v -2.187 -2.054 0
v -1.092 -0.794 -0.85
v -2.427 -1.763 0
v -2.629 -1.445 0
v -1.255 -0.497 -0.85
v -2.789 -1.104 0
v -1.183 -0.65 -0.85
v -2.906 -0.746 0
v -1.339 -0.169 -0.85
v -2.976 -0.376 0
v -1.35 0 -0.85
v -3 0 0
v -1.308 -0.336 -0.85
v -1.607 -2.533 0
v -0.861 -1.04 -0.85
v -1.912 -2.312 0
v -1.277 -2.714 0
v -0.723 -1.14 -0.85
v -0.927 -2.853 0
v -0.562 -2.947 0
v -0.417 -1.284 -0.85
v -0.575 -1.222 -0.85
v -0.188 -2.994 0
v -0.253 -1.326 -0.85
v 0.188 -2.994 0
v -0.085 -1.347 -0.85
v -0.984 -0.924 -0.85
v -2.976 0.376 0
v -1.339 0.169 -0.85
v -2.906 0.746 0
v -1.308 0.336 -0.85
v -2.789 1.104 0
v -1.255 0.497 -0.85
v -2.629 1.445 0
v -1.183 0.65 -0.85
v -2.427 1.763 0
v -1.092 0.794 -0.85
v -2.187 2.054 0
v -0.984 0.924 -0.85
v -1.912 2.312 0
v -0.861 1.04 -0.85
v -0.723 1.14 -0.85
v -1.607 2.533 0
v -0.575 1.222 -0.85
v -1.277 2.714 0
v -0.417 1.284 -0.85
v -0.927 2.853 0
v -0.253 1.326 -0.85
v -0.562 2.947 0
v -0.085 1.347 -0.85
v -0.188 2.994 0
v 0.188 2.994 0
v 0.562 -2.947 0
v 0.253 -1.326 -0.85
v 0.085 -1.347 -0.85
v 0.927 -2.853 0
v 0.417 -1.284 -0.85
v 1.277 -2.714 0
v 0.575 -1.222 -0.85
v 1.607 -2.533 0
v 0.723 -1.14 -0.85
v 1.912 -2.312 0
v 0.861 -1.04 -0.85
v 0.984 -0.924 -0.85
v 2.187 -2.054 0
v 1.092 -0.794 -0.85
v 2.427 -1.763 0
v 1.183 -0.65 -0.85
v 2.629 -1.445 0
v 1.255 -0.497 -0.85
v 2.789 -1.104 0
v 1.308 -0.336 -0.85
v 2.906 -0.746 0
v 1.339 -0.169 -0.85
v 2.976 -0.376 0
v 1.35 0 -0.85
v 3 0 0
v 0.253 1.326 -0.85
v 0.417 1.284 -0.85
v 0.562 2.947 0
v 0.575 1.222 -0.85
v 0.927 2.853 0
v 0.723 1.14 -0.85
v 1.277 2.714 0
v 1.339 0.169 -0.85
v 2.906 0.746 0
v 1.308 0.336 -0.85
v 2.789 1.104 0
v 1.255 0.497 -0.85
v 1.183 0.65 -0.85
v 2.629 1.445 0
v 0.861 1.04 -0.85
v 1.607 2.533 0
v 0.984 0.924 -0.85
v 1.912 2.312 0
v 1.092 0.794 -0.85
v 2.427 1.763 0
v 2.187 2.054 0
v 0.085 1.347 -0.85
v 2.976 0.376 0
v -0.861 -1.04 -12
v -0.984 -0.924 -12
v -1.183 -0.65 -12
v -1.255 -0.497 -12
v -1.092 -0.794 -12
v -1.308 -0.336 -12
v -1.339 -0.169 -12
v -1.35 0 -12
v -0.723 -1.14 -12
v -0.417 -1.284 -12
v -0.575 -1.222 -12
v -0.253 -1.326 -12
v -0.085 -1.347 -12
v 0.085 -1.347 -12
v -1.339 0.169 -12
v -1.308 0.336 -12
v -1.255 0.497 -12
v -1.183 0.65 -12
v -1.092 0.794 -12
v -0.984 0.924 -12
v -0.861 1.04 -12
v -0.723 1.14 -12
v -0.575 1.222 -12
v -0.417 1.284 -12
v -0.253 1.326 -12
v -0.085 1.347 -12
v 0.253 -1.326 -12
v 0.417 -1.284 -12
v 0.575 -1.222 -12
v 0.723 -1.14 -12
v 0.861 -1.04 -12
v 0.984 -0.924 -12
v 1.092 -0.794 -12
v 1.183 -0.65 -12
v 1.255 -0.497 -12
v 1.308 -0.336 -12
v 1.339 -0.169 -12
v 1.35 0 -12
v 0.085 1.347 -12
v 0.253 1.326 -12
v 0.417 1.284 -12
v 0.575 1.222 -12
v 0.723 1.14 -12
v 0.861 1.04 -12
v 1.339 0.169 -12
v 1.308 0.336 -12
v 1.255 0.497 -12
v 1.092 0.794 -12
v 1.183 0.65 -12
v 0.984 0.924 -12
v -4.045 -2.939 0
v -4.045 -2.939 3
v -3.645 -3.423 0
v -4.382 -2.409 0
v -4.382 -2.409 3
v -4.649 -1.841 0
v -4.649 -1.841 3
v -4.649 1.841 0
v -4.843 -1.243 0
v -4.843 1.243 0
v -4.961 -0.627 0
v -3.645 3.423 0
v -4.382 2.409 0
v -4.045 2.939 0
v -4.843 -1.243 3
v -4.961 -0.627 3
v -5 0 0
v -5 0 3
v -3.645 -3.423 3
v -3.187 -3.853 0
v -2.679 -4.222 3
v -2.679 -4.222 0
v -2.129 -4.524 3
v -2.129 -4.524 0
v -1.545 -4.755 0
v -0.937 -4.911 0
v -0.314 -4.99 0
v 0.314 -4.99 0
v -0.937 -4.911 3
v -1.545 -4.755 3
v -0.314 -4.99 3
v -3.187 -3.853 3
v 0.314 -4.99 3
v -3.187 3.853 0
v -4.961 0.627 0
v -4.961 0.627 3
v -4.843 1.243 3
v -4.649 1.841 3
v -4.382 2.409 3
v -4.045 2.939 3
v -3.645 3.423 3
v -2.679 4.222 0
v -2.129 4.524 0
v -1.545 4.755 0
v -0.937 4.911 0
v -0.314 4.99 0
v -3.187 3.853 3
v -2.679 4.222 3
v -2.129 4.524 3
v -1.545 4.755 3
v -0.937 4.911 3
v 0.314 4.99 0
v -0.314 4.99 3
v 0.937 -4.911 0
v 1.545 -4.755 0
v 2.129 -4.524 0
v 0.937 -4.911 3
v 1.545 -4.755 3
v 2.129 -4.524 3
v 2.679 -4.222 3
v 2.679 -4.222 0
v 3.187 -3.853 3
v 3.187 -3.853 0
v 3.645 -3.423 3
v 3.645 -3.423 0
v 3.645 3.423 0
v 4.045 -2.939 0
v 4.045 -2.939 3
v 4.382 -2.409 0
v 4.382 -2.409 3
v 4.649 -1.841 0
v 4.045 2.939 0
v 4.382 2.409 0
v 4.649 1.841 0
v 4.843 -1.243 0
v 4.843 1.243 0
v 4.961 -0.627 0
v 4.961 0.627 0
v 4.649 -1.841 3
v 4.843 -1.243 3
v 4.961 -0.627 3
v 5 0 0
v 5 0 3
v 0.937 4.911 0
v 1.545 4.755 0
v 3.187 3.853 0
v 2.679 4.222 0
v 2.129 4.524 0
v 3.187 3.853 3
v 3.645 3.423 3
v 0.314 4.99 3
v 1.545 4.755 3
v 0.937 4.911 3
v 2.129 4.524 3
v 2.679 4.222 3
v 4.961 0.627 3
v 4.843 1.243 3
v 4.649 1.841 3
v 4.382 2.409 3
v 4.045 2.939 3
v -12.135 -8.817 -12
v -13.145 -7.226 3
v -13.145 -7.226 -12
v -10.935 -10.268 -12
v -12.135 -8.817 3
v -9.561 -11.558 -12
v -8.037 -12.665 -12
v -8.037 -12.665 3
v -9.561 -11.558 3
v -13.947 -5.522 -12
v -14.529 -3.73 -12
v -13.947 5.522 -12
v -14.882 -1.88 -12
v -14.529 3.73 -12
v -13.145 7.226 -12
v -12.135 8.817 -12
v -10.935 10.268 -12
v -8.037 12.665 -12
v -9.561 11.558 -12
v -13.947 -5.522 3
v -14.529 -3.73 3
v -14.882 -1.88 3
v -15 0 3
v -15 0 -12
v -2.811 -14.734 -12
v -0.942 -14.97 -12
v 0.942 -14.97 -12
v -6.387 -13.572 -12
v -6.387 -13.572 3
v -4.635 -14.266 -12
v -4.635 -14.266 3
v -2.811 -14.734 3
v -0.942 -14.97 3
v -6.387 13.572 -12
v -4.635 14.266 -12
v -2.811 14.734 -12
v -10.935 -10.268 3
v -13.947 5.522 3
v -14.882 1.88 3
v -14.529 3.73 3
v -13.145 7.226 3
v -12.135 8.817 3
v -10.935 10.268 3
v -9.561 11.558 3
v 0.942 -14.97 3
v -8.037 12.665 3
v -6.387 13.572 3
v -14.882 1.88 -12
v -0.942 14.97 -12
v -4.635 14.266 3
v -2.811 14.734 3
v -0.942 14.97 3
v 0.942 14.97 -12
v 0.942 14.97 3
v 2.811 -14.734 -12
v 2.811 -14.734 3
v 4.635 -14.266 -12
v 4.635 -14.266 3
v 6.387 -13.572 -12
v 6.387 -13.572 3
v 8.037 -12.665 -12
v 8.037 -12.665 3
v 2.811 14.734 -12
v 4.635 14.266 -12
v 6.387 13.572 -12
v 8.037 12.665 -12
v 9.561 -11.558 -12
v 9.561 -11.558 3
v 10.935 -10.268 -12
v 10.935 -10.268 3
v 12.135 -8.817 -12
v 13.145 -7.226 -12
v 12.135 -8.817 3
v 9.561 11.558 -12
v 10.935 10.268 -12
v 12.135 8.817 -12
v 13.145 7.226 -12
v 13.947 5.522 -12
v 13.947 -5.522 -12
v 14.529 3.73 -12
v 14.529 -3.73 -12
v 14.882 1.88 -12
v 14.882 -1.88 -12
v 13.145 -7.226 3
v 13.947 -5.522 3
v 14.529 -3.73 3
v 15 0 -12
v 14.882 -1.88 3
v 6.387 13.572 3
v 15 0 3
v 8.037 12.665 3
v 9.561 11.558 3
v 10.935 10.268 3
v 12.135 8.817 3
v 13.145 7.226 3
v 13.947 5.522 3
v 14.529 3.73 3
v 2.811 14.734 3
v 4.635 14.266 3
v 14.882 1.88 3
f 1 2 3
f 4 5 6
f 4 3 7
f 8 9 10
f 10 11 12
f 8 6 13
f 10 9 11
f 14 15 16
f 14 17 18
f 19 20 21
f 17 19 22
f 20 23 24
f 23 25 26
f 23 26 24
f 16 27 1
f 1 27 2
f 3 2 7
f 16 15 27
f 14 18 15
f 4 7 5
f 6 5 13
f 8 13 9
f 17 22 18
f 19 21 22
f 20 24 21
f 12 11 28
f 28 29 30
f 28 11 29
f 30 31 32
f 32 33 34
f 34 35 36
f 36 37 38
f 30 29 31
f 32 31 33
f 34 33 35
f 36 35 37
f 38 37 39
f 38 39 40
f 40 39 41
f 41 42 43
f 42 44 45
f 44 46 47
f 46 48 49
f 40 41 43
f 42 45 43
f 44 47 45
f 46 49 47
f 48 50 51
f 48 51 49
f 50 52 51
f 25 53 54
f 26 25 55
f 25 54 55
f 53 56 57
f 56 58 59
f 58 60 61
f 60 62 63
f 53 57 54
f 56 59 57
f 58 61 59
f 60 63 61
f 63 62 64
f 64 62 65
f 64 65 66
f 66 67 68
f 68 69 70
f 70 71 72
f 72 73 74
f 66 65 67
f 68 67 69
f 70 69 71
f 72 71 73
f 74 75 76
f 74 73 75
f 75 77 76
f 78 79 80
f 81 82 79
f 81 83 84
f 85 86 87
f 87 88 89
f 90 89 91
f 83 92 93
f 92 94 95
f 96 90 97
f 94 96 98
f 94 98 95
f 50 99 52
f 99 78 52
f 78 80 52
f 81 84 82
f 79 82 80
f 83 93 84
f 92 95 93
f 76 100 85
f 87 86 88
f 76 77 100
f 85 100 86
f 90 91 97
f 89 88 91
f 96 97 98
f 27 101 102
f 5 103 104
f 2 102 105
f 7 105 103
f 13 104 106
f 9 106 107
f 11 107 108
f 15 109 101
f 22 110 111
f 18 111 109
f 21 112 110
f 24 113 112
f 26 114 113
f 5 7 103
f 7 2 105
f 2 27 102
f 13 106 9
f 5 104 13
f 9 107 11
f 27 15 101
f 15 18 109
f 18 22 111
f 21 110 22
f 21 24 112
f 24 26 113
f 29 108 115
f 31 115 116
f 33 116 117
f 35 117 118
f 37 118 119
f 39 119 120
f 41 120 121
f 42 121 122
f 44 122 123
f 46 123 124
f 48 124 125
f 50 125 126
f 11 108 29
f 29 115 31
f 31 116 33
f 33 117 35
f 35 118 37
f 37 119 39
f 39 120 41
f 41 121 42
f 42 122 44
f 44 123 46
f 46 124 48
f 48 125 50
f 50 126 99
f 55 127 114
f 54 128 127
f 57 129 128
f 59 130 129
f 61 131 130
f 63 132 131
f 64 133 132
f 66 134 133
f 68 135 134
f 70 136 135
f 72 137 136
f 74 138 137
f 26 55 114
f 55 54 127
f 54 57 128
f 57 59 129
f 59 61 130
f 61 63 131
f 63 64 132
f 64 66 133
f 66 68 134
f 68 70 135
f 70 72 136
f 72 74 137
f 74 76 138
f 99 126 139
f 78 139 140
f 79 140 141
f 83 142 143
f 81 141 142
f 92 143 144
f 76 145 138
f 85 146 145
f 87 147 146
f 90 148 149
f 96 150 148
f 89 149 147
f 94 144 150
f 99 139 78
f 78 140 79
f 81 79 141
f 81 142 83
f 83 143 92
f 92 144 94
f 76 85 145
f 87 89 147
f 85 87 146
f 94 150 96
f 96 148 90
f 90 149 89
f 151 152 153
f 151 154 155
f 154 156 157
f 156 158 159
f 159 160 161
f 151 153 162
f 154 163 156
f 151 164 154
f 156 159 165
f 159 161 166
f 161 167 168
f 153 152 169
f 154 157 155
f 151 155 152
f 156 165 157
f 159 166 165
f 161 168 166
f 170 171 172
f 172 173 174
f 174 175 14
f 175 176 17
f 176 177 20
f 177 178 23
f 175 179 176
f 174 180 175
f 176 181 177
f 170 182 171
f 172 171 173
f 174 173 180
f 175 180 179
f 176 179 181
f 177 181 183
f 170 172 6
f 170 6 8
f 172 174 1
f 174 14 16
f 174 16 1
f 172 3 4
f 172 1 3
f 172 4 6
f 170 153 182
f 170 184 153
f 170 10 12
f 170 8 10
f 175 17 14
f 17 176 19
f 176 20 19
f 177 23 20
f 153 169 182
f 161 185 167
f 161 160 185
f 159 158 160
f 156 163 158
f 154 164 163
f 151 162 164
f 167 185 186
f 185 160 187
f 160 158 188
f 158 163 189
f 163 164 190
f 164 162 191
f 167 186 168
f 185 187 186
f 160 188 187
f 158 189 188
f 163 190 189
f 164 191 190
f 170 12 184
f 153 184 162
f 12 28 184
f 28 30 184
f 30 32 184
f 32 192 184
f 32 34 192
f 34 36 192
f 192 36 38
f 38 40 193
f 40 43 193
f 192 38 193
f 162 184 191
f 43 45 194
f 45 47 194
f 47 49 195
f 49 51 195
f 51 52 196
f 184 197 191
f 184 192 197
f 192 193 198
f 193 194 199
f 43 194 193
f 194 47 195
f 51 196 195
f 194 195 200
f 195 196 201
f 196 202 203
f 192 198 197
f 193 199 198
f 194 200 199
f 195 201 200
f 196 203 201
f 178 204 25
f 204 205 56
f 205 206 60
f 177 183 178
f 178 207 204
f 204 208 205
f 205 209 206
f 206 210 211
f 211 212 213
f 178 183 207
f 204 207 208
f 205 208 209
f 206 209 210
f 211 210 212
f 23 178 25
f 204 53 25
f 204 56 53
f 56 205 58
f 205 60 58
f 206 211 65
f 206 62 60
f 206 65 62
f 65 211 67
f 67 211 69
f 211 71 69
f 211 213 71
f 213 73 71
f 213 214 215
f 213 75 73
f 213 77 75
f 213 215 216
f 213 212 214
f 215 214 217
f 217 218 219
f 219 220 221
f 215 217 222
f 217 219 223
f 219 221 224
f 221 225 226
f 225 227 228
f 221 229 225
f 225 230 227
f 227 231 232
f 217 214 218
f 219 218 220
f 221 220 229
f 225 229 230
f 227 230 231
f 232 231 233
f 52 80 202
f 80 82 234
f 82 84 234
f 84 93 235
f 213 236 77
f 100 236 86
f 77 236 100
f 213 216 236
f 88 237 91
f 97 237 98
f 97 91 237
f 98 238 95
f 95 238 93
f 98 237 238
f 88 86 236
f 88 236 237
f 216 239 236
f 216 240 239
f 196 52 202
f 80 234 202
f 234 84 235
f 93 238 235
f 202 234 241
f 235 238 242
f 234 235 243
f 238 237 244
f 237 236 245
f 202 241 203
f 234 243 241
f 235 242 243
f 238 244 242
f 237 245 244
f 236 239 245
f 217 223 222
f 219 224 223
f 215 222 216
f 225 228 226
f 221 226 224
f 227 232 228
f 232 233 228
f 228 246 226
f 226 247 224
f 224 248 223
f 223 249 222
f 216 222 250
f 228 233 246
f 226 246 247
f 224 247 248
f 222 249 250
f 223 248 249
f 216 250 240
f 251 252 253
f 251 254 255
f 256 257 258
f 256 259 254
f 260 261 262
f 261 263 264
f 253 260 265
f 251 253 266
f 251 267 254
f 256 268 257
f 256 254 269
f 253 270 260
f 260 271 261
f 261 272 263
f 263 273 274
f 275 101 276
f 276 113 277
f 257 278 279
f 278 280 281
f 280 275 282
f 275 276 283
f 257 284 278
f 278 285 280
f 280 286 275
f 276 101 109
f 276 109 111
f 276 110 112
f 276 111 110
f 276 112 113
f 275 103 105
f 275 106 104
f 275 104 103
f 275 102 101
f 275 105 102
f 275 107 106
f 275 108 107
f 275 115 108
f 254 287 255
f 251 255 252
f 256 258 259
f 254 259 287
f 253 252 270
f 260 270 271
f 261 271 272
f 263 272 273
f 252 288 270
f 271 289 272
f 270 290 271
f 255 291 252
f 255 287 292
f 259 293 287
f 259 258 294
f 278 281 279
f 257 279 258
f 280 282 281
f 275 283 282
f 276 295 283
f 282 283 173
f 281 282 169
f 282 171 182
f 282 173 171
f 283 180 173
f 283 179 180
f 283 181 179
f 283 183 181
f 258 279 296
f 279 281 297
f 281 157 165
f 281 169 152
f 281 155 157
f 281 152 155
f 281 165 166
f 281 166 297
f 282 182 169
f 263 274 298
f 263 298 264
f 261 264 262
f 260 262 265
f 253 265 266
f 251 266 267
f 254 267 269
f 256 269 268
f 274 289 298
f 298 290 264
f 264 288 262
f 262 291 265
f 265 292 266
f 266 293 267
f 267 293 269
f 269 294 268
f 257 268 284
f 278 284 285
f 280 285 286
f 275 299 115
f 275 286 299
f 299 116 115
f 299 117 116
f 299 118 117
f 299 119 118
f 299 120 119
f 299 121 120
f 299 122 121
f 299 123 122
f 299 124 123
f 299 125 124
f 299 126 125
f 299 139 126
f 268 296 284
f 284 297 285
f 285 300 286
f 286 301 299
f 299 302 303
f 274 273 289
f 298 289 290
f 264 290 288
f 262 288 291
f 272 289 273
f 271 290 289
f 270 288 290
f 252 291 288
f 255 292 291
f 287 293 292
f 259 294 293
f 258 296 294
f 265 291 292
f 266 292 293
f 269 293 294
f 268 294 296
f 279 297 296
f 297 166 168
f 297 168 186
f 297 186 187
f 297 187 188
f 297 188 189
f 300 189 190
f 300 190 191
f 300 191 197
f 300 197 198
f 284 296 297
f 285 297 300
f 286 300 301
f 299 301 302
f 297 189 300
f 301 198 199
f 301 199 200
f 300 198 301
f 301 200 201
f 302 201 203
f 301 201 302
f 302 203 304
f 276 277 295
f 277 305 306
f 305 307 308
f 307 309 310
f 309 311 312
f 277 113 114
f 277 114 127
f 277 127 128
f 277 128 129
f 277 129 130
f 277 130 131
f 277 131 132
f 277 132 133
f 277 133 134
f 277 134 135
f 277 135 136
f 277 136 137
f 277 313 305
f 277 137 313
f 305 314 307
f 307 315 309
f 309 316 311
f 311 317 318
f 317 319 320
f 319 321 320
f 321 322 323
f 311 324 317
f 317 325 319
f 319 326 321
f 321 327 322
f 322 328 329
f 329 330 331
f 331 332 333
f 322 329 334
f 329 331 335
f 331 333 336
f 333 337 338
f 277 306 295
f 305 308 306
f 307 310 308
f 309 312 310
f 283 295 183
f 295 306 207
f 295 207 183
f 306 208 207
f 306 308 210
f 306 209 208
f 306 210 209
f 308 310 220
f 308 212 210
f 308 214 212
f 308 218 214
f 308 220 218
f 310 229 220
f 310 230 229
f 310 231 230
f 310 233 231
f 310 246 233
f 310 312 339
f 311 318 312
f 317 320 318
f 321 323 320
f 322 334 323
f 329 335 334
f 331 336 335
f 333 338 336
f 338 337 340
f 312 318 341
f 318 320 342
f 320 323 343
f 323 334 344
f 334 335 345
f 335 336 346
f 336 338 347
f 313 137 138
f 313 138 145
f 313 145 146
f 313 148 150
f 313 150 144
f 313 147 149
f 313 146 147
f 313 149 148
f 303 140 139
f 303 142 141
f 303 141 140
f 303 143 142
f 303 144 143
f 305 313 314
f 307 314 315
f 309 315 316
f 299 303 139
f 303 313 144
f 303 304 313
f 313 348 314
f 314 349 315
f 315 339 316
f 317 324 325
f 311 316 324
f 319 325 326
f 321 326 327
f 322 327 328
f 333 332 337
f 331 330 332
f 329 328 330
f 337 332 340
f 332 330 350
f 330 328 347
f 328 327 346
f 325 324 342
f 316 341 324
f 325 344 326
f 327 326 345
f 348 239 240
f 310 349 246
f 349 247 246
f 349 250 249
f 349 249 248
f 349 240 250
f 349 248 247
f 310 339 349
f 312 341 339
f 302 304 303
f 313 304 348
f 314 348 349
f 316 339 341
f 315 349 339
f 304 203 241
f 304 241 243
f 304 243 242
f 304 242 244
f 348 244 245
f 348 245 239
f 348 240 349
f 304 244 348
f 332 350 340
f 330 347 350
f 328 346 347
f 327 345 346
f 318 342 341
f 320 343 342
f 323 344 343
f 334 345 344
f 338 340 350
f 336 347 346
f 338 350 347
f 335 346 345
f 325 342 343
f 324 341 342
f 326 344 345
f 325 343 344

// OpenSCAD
$fn = 50;

difference() {
	union() {
		translate(v = [0, 0, -12.0]) {
			cylinder(h = 15, r = 15.0);
		}
	}
	union() {
		translate(v = [0, 0, 0]) {
			rotate(a = [0, 0, 0]) {
				difference() {
					union() {
						translate(v = [0, 0, -15.0]) {
							cylinder(h = 15, r = 1.0);
						}
						translate(v = [0, 0, -0.85]) {
							cylinder(h = 0.85, r1 = 1.35, r2 = 3.0);
						}
						translate(v = [0, 0, -15.0]) {
							cylinder(h = 15, r = 1.35);
						}
						translate(v = [0, 0, -15.0]) {
							cylinder(h = 15, r = 1.0);
						}
					}
					union();
				}
			}
		}
		#cylinder(h = 3, r = 5.0);
	}
}
